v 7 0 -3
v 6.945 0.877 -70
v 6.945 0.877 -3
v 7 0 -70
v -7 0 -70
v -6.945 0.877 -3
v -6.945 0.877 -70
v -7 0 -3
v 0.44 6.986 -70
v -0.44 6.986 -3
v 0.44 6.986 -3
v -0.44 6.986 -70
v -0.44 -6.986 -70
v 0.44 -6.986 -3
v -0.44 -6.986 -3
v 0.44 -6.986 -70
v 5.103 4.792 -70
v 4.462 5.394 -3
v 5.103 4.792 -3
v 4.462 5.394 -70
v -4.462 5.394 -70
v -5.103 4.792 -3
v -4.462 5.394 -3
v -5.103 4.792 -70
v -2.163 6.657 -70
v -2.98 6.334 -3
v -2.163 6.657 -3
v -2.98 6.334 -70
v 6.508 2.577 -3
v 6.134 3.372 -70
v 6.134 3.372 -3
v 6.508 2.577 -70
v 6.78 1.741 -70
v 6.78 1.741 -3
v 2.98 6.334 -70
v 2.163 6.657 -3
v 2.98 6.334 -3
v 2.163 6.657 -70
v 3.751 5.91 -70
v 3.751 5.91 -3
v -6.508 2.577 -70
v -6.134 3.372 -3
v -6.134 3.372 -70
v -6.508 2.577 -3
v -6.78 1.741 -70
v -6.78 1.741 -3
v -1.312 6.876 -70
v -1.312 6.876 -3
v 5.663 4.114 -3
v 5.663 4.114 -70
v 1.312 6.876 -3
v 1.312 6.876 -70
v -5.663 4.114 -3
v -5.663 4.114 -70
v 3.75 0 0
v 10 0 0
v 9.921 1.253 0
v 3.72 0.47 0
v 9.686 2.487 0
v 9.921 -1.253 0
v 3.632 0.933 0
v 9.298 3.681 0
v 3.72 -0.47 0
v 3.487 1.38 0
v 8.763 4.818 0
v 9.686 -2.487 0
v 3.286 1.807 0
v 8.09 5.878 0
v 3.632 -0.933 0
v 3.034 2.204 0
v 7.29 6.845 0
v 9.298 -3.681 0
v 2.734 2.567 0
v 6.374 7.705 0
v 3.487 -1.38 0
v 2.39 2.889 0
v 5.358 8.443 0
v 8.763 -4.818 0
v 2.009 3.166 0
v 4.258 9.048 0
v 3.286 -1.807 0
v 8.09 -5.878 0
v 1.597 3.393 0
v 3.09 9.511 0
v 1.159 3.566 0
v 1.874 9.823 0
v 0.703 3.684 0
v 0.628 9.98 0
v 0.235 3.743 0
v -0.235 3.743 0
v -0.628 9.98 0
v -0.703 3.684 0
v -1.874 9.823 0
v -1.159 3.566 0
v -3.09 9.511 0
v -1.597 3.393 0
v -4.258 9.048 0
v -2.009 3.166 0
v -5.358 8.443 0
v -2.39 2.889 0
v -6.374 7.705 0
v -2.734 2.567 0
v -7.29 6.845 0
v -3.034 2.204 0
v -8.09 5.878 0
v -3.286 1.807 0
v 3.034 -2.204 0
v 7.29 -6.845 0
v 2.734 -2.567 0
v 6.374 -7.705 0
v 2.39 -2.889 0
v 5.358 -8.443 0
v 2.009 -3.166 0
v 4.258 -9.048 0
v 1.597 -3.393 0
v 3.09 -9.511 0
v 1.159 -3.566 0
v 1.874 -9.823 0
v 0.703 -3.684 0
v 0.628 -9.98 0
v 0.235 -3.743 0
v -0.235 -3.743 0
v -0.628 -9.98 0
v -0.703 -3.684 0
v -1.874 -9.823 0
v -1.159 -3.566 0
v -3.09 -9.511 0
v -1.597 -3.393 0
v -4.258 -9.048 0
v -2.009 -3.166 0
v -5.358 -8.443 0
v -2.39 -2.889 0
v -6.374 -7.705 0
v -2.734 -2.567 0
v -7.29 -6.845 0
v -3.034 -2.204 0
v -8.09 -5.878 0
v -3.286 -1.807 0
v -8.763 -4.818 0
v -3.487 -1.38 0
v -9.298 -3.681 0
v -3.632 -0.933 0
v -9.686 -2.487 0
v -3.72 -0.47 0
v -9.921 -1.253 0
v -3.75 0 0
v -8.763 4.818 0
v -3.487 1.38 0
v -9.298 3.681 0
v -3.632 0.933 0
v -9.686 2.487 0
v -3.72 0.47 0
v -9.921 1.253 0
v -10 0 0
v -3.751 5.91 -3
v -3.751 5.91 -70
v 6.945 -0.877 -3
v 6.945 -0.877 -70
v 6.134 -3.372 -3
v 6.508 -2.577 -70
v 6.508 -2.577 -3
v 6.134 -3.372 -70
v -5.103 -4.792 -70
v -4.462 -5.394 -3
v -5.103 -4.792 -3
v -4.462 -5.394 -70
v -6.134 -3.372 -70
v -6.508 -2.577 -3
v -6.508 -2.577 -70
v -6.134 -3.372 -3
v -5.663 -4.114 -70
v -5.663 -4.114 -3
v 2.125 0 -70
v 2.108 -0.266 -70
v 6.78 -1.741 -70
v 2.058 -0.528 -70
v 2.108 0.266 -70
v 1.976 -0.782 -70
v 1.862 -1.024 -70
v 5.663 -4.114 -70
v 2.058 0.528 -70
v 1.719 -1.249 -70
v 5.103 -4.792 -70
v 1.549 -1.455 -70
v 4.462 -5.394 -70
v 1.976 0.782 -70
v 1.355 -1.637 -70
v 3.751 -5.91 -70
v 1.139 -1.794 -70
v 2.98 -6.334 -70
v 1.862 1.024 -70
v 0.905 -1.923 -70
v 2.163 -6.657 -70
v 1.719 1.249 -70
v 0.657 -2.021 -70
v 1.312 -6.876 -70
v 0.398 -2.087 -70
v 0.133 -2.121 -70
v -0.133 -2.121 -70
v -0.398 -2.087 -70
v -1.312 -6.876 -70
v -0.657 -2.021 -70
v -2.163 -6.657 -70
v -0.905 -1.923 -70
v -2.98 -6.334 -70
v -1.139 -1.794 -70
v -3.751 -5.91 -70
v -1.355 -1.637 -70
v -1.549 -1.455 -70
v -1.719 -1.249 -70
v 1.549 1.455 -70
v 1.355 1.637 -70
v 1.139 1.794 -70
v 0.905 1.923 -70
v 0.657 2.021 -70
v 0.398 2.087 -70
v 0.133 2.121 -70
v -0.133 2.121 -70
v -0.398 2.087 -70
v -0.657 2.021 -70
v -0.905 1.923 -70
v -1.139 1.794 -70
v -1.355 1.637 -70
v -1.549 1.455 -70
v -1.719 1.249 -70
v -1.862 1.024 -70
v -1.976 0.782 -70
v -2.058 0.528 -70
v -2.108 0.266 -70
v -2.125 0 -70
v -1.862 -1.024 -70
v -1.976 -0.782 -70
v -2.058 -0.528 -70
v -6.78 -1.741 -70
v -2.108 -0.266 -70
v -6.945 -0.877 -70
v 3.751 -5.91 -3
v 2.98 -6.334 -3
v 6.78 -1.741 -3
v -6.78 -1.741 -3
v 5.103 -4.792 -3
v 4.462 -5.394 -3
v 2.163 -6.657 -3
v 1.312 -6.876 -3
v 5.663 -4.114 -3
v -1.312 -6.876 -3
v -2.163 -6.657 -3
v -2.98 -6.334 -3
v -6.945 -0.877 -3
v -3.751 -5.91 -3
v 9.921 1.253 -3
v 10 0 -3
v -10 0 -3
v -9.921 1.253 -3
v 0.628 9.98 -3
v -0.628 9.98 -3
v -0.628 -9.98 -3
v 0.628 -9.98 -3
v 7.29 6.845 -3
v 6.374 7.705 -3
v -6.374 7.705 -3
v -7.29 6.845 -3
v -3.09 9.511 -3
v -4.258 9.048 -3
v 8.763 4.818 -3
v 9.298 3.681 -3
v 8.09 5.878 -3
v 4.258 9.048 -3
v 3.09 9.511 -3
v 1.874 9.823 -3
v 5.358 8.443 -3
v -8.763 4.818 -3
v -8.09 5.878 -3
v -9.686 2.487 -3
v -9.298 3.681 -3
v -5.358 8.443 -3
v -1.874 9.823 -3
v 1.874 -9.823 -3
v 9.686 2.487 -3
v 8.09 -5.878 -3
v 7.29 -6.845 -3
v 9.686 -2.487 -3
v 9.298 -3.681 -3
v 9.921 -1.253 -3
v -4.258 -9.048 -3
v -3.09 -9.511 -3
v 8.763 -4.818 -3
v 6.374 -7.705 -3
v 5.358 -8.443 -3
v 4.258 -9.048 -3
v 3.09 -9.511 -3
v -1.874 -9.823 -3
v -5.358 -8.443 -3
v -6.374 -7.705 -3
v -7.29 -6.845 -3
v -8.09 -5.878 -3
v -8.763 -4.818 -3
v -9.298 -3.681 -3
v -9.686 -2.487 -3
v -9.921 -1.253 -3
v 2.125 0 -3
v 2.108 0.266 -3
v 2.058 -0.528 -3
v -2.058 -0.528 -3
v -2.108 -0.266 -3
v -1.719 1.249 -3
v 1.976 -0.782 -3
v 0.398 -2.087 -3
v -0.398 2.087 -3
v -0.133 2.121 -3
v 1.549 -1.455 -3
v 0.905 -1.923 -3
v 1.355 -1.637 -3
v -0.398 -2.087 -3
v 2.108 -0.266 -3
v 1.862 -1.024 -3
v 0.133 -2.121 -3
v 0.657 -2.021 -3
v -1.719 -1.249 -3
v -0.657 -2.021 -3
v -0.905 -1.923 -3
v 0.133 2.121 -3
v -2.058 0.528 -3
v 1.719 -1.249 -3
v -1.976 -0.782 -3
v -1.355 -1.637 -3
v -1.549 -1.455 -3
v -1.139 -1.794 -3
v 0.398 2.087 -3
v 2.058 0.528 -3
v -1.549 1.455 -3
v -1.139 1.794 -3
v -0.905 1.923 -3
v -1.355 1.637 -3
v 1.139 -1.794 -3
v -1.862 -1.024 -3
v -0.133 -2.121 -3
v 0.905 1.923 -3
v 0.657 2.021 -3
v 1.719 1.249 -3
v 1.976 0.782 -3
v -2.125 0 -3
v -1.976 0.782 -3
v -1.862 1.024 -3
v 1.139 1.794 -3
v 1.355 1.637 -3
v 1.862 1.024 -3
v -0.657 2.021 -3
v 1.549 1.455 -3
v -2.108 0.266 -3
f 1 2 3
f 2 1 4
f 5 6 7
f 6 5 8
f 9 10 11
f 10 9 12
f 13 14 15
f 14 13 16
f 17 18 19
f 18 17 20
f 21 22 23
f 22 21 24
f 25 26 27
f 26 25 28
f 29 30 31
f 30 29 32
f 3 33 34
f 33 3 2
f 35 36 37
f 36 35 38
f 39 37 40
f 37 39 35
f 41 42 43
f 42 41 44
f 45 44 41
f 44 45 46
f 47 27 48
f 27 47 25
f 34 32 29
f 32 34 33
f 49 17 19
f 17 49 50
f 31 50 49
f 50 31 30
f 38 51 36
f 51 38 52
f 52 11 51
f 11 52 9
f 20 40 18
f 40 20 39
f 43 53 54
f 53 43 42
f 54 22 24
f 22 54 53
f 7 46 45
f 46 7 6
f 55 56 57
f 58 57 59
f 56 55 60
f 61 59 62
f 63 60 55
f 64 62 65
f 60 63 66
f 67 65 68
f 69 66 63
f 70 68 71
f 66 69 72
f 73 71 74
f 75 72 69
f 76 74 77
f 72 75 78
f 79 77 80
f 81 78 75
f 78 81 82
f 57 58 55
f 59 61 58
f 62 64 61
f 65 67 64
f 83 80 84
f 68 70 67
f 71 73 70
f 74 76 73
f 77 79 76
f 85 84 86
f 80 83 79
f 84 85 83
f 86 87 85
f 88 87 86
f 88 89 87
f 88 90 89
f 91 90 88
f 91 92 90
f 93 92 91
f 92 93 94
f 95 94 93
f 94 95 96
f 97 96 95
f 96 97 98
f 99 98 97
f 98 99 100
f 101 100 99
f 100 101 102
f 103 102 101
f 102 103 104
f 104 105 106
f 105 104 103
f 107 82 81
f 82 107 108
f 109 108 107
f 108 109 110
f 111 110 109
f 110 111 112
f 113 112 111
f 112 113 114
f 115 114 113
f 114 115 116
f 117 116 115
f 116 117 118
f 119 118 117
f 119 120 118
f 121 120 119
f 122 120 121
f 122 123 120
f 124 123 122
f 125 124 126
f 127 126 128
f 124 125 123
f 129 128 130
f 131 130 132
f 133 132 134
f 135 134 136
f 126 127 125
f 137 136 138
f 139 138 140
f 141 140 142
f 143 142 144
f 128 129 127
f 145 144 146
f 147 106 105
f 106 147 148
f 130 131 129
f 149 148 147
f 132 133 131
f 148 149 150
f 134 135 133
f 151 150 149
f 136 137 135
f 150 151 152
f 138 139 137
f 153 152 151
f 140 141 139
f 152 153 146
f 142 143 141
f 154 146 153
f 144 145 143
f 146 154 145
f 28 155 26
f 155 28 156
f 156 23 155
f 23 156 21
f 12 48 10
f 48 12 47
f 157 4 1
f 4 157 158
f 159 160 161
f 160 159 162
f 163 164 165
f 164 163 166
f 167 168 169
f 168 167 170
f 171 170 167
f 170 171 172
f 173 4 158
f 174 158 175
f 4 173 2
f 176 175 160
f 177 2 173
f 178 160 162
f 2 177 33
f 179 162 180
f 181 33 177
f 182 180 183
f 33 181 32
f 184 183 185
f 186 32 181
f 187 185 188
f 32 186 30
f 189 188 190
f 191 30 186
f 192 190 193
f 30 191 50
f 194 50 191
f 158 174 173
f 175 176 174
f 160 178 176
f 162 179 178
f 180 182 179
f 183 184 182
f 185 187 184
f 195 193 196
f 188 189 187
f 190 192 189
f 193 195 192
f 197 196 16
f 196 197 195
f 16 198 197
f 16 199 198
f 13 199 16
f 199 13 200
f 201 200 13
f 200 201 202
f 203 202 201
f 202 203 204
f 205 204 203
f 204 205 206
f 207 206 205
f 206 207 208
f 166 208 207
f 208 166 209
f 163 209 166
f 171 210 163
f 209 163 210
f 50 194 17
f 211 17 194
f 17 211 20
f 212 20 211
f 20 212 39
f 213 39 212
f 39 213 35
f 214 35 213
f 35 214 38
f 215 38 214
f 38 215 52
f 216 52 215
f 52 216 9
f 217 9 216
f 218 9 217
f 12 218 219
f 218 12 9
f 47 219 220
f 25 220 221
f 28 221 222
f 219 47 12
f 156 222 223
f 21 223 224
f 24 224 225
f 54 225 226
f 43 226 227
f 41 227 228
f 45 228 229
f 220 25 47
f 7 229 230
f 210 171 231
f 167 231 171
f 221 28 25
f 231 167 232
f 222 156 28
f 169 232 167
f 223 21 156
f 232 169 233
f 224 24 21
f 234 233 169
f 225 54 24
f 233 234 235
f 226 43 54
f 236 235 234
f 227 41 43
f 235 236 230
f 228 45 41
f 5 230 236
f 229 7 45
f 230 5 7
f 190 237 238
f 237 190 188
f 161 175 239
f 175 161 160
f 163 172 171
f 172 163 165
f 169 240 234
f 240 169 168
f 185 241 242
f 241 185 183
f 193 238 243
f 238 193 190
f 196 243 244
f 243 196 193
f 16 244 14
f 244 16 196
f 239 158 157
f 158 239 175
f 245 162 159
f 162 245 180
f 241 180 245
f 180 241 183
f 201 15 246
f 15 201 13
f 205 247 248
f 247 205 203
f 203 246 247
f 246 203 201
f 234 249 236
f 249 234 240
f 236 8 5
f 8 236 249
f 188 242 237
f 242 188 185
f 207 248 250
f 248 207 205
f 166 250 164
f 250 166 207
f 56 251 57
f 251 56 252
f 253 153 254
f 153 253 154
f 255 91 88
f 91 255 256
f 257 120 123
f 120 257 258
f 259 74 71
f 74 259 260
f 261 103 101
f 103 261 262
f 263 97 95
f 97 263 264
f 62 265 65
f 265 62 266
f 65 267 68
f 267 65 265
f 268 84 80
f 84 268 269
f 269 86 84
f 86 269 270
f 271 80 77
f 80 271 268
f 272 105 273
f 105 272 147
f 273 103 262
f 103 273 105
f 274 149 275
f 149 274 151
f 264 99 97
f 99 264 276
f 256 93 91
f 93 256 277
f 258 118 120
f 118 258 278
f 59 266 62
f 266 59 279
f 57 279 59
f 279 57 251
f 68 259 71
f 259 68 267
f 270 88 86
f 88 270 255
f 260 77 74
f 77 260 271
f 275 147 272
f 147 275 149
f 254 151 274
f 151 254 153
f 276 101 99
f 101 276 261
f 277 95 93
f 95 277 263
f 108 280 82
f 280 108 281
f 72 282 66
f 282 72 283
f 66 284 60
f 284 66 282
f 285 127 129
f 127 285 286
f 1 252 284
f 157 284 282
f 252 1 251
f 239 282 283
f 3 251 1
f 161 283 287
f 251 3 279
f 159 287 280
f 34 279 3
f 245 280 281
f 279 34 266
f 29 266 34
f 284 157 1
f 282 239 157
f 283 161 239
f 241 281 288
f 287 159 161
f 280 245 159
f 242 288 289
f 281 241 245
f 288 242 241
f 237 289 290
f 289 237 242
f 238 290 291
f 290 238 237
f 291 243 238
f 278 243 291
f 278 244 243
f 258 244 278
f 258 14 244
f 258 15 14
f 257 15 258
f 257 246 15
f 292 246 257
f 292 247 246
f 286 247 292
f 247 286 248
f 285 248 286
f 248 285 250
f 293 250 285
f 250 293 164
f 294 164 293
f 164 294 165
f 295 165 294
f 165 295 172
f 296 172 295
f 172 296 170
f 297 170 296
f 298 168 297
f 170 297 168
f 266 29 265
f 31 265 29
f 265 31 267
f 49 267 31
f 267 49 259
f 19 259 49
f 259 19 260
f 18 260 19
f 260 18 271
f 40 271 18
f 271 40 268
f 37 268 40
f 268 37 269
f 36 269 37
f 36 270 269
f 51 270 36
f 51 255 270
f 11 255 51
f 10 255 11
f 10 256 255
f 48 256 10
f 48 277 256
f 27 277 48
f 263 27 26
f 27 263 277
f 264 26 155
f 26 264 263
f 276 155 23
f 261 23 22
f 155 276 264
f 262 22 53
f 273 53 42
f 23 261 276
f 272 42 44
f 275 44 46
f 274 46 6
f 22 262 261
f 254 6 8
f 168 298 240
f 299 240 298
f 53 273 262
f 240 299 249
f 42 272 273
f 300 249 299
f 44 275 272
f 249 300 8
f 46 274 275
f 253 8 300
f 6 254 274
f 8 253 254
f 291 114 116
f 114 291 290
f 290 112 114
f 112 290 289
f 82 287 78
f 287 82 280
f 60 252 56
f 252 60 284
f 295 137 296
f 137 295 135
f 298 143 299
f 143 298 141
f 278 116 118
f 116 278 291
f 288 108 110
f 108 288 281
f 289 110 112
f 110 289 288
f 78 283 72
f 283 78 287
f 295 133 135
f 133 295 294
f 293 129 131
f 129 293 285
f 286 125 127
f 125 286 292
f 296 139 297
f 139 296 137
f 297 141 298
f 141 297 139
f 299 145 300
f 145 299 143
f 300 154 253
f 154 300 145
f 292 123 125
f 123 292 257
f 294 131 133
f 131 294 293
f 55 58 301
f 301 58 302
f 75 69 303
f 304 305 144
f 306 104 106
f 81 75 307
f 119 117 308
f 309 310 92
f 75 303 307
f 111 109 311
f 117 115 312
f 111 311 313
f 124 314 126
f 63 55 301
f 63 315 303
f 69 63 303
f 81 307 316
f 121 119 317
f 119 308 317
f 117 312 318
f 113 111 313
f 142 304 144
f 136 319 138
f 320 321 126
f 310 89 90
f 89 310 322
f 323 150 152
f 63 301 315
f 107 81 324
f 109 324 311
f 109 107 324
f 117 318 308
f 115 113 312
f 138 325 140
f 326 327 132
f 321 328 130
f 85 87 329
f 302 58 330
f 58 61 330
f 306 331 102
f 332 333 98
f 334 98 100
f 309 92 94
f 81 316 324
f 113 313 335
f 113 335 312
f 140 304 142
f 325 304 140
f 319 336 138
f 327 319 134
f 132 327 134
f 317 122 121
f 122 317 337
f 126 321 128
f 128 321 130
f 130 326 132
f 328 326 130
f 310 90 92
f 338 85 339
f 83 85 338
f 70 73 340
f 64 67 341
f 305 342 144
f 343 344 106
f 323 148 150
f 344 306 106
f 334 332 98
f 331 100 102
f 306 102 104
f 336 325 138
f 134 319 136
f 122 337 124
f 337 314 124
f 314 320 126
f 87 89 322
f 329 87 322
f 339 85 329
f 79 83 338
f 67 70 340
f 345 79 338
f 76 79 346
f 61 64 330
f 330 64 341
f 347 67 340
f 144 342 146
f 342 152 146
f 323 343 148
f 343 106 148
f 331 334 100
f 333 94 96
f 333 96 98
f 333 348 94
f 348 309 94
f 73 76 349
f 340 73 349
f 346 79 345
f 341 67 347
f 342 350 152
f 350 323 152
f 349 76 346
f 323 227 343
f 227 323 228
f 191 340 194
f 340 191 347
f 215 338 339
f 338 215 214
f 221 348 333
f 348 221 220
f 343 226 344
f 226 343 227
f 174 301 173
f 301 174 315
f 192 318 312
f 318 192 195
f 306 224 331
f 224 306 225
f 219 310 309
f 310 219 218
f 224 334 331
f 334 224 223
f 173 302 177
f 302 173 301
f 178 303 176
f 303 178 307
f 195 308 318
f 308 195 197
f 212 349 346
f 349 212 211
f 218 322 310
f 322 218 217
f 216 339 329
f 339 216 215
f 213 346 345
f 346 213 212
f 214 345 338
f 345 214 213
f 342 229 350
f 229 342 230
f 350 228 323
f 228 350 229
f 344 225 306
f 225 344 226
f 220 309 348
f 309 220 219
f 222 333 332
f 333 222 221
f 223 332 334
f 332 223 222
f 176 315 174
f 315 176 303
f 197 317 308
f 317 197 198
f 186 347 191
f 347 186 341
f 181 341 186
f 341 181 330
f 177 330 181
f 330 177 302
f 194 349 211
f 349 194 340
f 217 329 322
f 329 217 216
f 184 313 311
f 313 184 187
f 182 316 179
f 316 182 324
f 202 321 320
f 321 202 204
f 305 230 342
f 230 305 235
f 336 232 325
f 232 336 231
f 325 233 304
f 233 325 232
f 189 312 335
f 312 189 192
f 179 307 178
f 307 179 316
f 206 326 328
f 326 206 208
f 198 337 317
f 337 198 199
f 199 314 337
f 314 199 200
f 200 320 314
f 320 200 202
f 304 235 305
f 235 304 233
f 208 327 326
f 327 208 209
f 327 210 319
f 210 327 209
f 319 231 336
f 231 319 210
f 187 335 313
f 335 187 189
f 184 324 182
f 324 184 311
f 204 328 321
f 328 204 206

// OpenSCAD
$fn = 50;


difference() {
	union() {
		translate(v = [0, 0, -70.0000000000]) {
			cylinder(h = 70, r = 7.0000000000);
		}
		translate(v = [0, 0, -3.0000000000]) {
			cylinder(h = 3, r = 10.0000000000);
		}
	}
	union() {
		translate(v = [0, 0, 0]) {
			rotate(a = [0, 0, 0]) {
				difference() {
					union() {
						#translate(v = [0, 0, -70.0000000000]) {
							cylinder(h = 70, r = 2.0000000000);
						}
						#translate(v = [0, 0, -3]) {
							cylinder(h = 3, r = 7.0000000000, r1 = 2.1250000000, r2 = 3.7500000000);
						}
						#translate(v = [0, 0, -70.0000000000]) {
							cylinder(h = 70, r = 2.1250000000);
						}
						#translate(v = [0, 0, -70.0000000000]) {
							cylinder(h = 70, r = 2.0000000000);
						}
					}
					union();
				}
			}
		}
	}
}
